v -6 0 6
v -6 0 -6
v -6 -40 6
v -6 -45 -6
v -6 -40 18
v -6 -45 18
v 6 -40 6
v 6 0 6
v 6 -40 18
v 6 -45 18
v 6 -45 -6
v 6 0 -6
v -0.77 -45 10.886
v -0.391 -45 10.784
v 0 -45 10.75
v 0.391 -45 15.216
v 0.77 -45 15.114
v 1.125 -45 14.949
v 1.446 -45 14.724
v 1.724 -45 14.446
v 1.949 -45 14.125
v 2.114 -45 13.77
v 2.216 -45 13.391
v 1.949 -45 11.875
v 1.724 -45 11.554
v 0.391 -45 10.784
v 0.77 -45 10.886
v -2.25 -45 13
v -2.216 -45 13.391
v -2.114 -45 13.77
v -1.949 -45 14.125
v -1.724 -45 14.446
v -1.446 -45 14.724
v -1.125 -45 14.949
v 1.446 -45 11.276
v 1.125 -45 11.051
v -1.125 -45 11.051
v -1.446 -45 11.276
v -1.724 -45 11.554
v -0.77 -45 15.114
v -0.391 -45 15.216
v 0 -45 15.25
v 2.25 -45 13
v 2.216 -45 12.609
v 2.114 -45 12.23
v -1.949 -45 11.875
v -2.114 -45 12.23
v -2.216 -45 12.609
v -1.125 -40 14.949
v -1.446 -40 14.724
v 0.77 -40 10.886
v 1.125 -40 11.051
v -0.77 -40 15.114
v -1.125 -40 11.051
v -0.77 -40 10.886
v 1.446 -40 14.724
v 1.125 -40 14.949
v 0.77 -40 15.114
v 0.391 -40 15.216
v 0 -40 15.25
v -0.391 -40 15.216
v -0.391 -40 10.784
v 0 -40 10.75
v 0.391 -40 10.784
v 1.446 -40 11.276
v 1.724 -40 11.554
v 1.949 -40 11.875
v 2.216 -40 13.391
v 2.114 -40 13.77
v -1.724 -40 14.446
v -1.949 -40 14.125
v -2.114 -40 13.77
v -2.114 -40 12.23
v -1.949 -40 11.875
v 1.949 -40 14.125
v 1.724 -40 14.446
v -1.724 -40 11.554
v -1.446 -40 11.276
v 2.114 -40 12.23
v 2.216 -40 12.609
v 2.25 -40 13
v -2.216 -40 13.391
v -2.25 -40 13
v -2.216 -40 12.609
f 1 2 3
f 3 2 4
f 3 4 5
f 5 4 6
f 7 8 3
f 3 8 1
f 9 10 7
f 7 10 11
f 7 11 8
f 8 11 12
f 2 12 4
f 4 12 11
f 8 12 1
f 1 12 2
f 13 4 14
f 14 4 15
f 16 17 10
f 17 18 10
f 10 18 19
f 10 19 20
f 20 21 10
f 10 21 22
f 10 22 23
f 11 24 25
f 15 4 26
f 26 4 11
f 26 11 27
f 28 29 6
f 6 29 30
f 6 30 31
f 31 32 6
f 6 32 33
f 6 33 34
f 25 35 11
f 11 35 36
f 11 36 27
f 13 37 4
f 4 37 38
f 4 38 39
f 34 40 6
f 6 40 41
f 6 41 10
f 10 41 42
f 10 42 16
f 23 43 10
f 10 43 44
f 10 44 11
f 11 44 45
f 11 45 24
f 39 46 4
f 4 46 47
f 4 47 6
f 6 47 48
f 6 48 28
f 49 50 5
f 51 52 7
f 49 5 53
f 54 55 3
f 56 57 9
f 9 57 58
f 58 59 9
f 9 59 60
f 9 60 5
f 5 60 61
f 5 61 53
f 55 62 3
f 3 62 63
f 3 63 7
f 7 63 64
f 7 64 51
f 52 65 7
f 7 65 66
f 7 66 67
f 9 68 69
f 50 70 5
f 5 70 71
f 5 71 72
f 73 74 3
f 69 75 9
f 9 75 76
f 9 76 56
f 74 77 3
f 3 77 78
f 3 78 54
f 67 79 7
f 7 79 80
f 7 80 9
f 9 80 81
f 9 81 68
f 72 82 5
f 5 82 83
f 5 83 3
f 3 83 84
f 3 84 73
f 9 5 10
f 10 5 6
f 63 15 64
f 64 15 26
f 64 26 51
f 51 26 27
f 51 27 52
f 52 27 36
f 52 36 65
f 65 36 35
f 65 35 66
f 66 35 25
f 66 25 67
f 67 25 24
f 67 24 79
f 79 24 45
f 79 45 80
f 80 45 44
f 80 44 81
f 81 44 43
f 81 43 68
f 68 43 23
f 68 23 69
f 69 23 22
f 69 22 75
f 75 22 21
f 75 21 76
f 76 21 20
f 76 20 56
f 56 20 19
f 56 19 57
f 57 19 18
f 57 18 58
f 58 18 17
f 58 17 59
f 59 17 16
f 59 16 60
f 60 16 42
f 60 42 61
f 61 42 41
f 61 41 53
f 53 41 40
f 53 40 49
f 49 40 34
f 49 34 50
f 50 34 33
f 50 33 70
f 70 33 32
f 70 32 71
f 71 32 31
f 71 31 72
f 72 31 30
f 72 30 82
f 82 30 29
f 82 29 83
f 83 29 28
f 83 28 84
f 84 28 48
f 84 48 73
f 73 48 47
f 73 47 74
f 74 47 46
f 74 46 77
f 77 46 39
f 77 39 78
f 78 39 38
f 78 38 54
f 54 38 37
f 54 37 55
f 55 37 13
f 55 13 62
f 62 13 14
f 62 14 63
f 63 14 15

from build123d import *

# Parameters (mm, degrees)
LEG_START          = -45
SKETCH1_W          = 12
SKETCH1_H          = 12
LEG_DEPTH          = 45
FOOT_PAD_START     = -45
SKETCH2_W          = 12
SKETCH2_H          = 18
FOOT_PAD_DEPTH     = 5
FOOT_HOLE_M4_START = -45.5
SKETCH3_R          = 2.25
FOOT_HOLE_M4_DEPTH = 6


with BuildPart() as part:
    # Sketch1 → Leg (new body)
    with BuildSketch(Plane(origin=(0, 0, 0), x_dir=(1, 0, 0), z_dir=(0, 1, 0)).offset(LEG_START)):
        Rectangle(SKETCH1_W, SKETCH1_H)
    extrude(amount=LEG_DEPTH)

    # Sketch2 → Foot_Pad (add)
    with BuildSketch(Plane(origin=(0, 0, 0), x_dir=(1, 0, 0), z_dir=(0, 1, 0)).offset(FOOT_PAD_START)):
        with Locations((0, -9)):
            Rectangle(SKETCH2_W, SKETCH2_H)
    extrude(amount=FOOT_PAD_DEPTH)

    # Sketch3 → Foot_Hole_M4 (cut)
    with BuildSketch(Plane(origin=(0, 0, 0), x_dir=(1, 0, 0), z_dir=(0, 1, 0)).offset(FOOT_HOLE_M4_START)):
        with Locations(Location((0, -13, 0), (0, 0, 270))):
            Circle(SKETCH3_R)
    extrude(amount=FOOT_HOLE_M4_DEPTH, mode=Mode.SUBTRACT)


solid = part.part
